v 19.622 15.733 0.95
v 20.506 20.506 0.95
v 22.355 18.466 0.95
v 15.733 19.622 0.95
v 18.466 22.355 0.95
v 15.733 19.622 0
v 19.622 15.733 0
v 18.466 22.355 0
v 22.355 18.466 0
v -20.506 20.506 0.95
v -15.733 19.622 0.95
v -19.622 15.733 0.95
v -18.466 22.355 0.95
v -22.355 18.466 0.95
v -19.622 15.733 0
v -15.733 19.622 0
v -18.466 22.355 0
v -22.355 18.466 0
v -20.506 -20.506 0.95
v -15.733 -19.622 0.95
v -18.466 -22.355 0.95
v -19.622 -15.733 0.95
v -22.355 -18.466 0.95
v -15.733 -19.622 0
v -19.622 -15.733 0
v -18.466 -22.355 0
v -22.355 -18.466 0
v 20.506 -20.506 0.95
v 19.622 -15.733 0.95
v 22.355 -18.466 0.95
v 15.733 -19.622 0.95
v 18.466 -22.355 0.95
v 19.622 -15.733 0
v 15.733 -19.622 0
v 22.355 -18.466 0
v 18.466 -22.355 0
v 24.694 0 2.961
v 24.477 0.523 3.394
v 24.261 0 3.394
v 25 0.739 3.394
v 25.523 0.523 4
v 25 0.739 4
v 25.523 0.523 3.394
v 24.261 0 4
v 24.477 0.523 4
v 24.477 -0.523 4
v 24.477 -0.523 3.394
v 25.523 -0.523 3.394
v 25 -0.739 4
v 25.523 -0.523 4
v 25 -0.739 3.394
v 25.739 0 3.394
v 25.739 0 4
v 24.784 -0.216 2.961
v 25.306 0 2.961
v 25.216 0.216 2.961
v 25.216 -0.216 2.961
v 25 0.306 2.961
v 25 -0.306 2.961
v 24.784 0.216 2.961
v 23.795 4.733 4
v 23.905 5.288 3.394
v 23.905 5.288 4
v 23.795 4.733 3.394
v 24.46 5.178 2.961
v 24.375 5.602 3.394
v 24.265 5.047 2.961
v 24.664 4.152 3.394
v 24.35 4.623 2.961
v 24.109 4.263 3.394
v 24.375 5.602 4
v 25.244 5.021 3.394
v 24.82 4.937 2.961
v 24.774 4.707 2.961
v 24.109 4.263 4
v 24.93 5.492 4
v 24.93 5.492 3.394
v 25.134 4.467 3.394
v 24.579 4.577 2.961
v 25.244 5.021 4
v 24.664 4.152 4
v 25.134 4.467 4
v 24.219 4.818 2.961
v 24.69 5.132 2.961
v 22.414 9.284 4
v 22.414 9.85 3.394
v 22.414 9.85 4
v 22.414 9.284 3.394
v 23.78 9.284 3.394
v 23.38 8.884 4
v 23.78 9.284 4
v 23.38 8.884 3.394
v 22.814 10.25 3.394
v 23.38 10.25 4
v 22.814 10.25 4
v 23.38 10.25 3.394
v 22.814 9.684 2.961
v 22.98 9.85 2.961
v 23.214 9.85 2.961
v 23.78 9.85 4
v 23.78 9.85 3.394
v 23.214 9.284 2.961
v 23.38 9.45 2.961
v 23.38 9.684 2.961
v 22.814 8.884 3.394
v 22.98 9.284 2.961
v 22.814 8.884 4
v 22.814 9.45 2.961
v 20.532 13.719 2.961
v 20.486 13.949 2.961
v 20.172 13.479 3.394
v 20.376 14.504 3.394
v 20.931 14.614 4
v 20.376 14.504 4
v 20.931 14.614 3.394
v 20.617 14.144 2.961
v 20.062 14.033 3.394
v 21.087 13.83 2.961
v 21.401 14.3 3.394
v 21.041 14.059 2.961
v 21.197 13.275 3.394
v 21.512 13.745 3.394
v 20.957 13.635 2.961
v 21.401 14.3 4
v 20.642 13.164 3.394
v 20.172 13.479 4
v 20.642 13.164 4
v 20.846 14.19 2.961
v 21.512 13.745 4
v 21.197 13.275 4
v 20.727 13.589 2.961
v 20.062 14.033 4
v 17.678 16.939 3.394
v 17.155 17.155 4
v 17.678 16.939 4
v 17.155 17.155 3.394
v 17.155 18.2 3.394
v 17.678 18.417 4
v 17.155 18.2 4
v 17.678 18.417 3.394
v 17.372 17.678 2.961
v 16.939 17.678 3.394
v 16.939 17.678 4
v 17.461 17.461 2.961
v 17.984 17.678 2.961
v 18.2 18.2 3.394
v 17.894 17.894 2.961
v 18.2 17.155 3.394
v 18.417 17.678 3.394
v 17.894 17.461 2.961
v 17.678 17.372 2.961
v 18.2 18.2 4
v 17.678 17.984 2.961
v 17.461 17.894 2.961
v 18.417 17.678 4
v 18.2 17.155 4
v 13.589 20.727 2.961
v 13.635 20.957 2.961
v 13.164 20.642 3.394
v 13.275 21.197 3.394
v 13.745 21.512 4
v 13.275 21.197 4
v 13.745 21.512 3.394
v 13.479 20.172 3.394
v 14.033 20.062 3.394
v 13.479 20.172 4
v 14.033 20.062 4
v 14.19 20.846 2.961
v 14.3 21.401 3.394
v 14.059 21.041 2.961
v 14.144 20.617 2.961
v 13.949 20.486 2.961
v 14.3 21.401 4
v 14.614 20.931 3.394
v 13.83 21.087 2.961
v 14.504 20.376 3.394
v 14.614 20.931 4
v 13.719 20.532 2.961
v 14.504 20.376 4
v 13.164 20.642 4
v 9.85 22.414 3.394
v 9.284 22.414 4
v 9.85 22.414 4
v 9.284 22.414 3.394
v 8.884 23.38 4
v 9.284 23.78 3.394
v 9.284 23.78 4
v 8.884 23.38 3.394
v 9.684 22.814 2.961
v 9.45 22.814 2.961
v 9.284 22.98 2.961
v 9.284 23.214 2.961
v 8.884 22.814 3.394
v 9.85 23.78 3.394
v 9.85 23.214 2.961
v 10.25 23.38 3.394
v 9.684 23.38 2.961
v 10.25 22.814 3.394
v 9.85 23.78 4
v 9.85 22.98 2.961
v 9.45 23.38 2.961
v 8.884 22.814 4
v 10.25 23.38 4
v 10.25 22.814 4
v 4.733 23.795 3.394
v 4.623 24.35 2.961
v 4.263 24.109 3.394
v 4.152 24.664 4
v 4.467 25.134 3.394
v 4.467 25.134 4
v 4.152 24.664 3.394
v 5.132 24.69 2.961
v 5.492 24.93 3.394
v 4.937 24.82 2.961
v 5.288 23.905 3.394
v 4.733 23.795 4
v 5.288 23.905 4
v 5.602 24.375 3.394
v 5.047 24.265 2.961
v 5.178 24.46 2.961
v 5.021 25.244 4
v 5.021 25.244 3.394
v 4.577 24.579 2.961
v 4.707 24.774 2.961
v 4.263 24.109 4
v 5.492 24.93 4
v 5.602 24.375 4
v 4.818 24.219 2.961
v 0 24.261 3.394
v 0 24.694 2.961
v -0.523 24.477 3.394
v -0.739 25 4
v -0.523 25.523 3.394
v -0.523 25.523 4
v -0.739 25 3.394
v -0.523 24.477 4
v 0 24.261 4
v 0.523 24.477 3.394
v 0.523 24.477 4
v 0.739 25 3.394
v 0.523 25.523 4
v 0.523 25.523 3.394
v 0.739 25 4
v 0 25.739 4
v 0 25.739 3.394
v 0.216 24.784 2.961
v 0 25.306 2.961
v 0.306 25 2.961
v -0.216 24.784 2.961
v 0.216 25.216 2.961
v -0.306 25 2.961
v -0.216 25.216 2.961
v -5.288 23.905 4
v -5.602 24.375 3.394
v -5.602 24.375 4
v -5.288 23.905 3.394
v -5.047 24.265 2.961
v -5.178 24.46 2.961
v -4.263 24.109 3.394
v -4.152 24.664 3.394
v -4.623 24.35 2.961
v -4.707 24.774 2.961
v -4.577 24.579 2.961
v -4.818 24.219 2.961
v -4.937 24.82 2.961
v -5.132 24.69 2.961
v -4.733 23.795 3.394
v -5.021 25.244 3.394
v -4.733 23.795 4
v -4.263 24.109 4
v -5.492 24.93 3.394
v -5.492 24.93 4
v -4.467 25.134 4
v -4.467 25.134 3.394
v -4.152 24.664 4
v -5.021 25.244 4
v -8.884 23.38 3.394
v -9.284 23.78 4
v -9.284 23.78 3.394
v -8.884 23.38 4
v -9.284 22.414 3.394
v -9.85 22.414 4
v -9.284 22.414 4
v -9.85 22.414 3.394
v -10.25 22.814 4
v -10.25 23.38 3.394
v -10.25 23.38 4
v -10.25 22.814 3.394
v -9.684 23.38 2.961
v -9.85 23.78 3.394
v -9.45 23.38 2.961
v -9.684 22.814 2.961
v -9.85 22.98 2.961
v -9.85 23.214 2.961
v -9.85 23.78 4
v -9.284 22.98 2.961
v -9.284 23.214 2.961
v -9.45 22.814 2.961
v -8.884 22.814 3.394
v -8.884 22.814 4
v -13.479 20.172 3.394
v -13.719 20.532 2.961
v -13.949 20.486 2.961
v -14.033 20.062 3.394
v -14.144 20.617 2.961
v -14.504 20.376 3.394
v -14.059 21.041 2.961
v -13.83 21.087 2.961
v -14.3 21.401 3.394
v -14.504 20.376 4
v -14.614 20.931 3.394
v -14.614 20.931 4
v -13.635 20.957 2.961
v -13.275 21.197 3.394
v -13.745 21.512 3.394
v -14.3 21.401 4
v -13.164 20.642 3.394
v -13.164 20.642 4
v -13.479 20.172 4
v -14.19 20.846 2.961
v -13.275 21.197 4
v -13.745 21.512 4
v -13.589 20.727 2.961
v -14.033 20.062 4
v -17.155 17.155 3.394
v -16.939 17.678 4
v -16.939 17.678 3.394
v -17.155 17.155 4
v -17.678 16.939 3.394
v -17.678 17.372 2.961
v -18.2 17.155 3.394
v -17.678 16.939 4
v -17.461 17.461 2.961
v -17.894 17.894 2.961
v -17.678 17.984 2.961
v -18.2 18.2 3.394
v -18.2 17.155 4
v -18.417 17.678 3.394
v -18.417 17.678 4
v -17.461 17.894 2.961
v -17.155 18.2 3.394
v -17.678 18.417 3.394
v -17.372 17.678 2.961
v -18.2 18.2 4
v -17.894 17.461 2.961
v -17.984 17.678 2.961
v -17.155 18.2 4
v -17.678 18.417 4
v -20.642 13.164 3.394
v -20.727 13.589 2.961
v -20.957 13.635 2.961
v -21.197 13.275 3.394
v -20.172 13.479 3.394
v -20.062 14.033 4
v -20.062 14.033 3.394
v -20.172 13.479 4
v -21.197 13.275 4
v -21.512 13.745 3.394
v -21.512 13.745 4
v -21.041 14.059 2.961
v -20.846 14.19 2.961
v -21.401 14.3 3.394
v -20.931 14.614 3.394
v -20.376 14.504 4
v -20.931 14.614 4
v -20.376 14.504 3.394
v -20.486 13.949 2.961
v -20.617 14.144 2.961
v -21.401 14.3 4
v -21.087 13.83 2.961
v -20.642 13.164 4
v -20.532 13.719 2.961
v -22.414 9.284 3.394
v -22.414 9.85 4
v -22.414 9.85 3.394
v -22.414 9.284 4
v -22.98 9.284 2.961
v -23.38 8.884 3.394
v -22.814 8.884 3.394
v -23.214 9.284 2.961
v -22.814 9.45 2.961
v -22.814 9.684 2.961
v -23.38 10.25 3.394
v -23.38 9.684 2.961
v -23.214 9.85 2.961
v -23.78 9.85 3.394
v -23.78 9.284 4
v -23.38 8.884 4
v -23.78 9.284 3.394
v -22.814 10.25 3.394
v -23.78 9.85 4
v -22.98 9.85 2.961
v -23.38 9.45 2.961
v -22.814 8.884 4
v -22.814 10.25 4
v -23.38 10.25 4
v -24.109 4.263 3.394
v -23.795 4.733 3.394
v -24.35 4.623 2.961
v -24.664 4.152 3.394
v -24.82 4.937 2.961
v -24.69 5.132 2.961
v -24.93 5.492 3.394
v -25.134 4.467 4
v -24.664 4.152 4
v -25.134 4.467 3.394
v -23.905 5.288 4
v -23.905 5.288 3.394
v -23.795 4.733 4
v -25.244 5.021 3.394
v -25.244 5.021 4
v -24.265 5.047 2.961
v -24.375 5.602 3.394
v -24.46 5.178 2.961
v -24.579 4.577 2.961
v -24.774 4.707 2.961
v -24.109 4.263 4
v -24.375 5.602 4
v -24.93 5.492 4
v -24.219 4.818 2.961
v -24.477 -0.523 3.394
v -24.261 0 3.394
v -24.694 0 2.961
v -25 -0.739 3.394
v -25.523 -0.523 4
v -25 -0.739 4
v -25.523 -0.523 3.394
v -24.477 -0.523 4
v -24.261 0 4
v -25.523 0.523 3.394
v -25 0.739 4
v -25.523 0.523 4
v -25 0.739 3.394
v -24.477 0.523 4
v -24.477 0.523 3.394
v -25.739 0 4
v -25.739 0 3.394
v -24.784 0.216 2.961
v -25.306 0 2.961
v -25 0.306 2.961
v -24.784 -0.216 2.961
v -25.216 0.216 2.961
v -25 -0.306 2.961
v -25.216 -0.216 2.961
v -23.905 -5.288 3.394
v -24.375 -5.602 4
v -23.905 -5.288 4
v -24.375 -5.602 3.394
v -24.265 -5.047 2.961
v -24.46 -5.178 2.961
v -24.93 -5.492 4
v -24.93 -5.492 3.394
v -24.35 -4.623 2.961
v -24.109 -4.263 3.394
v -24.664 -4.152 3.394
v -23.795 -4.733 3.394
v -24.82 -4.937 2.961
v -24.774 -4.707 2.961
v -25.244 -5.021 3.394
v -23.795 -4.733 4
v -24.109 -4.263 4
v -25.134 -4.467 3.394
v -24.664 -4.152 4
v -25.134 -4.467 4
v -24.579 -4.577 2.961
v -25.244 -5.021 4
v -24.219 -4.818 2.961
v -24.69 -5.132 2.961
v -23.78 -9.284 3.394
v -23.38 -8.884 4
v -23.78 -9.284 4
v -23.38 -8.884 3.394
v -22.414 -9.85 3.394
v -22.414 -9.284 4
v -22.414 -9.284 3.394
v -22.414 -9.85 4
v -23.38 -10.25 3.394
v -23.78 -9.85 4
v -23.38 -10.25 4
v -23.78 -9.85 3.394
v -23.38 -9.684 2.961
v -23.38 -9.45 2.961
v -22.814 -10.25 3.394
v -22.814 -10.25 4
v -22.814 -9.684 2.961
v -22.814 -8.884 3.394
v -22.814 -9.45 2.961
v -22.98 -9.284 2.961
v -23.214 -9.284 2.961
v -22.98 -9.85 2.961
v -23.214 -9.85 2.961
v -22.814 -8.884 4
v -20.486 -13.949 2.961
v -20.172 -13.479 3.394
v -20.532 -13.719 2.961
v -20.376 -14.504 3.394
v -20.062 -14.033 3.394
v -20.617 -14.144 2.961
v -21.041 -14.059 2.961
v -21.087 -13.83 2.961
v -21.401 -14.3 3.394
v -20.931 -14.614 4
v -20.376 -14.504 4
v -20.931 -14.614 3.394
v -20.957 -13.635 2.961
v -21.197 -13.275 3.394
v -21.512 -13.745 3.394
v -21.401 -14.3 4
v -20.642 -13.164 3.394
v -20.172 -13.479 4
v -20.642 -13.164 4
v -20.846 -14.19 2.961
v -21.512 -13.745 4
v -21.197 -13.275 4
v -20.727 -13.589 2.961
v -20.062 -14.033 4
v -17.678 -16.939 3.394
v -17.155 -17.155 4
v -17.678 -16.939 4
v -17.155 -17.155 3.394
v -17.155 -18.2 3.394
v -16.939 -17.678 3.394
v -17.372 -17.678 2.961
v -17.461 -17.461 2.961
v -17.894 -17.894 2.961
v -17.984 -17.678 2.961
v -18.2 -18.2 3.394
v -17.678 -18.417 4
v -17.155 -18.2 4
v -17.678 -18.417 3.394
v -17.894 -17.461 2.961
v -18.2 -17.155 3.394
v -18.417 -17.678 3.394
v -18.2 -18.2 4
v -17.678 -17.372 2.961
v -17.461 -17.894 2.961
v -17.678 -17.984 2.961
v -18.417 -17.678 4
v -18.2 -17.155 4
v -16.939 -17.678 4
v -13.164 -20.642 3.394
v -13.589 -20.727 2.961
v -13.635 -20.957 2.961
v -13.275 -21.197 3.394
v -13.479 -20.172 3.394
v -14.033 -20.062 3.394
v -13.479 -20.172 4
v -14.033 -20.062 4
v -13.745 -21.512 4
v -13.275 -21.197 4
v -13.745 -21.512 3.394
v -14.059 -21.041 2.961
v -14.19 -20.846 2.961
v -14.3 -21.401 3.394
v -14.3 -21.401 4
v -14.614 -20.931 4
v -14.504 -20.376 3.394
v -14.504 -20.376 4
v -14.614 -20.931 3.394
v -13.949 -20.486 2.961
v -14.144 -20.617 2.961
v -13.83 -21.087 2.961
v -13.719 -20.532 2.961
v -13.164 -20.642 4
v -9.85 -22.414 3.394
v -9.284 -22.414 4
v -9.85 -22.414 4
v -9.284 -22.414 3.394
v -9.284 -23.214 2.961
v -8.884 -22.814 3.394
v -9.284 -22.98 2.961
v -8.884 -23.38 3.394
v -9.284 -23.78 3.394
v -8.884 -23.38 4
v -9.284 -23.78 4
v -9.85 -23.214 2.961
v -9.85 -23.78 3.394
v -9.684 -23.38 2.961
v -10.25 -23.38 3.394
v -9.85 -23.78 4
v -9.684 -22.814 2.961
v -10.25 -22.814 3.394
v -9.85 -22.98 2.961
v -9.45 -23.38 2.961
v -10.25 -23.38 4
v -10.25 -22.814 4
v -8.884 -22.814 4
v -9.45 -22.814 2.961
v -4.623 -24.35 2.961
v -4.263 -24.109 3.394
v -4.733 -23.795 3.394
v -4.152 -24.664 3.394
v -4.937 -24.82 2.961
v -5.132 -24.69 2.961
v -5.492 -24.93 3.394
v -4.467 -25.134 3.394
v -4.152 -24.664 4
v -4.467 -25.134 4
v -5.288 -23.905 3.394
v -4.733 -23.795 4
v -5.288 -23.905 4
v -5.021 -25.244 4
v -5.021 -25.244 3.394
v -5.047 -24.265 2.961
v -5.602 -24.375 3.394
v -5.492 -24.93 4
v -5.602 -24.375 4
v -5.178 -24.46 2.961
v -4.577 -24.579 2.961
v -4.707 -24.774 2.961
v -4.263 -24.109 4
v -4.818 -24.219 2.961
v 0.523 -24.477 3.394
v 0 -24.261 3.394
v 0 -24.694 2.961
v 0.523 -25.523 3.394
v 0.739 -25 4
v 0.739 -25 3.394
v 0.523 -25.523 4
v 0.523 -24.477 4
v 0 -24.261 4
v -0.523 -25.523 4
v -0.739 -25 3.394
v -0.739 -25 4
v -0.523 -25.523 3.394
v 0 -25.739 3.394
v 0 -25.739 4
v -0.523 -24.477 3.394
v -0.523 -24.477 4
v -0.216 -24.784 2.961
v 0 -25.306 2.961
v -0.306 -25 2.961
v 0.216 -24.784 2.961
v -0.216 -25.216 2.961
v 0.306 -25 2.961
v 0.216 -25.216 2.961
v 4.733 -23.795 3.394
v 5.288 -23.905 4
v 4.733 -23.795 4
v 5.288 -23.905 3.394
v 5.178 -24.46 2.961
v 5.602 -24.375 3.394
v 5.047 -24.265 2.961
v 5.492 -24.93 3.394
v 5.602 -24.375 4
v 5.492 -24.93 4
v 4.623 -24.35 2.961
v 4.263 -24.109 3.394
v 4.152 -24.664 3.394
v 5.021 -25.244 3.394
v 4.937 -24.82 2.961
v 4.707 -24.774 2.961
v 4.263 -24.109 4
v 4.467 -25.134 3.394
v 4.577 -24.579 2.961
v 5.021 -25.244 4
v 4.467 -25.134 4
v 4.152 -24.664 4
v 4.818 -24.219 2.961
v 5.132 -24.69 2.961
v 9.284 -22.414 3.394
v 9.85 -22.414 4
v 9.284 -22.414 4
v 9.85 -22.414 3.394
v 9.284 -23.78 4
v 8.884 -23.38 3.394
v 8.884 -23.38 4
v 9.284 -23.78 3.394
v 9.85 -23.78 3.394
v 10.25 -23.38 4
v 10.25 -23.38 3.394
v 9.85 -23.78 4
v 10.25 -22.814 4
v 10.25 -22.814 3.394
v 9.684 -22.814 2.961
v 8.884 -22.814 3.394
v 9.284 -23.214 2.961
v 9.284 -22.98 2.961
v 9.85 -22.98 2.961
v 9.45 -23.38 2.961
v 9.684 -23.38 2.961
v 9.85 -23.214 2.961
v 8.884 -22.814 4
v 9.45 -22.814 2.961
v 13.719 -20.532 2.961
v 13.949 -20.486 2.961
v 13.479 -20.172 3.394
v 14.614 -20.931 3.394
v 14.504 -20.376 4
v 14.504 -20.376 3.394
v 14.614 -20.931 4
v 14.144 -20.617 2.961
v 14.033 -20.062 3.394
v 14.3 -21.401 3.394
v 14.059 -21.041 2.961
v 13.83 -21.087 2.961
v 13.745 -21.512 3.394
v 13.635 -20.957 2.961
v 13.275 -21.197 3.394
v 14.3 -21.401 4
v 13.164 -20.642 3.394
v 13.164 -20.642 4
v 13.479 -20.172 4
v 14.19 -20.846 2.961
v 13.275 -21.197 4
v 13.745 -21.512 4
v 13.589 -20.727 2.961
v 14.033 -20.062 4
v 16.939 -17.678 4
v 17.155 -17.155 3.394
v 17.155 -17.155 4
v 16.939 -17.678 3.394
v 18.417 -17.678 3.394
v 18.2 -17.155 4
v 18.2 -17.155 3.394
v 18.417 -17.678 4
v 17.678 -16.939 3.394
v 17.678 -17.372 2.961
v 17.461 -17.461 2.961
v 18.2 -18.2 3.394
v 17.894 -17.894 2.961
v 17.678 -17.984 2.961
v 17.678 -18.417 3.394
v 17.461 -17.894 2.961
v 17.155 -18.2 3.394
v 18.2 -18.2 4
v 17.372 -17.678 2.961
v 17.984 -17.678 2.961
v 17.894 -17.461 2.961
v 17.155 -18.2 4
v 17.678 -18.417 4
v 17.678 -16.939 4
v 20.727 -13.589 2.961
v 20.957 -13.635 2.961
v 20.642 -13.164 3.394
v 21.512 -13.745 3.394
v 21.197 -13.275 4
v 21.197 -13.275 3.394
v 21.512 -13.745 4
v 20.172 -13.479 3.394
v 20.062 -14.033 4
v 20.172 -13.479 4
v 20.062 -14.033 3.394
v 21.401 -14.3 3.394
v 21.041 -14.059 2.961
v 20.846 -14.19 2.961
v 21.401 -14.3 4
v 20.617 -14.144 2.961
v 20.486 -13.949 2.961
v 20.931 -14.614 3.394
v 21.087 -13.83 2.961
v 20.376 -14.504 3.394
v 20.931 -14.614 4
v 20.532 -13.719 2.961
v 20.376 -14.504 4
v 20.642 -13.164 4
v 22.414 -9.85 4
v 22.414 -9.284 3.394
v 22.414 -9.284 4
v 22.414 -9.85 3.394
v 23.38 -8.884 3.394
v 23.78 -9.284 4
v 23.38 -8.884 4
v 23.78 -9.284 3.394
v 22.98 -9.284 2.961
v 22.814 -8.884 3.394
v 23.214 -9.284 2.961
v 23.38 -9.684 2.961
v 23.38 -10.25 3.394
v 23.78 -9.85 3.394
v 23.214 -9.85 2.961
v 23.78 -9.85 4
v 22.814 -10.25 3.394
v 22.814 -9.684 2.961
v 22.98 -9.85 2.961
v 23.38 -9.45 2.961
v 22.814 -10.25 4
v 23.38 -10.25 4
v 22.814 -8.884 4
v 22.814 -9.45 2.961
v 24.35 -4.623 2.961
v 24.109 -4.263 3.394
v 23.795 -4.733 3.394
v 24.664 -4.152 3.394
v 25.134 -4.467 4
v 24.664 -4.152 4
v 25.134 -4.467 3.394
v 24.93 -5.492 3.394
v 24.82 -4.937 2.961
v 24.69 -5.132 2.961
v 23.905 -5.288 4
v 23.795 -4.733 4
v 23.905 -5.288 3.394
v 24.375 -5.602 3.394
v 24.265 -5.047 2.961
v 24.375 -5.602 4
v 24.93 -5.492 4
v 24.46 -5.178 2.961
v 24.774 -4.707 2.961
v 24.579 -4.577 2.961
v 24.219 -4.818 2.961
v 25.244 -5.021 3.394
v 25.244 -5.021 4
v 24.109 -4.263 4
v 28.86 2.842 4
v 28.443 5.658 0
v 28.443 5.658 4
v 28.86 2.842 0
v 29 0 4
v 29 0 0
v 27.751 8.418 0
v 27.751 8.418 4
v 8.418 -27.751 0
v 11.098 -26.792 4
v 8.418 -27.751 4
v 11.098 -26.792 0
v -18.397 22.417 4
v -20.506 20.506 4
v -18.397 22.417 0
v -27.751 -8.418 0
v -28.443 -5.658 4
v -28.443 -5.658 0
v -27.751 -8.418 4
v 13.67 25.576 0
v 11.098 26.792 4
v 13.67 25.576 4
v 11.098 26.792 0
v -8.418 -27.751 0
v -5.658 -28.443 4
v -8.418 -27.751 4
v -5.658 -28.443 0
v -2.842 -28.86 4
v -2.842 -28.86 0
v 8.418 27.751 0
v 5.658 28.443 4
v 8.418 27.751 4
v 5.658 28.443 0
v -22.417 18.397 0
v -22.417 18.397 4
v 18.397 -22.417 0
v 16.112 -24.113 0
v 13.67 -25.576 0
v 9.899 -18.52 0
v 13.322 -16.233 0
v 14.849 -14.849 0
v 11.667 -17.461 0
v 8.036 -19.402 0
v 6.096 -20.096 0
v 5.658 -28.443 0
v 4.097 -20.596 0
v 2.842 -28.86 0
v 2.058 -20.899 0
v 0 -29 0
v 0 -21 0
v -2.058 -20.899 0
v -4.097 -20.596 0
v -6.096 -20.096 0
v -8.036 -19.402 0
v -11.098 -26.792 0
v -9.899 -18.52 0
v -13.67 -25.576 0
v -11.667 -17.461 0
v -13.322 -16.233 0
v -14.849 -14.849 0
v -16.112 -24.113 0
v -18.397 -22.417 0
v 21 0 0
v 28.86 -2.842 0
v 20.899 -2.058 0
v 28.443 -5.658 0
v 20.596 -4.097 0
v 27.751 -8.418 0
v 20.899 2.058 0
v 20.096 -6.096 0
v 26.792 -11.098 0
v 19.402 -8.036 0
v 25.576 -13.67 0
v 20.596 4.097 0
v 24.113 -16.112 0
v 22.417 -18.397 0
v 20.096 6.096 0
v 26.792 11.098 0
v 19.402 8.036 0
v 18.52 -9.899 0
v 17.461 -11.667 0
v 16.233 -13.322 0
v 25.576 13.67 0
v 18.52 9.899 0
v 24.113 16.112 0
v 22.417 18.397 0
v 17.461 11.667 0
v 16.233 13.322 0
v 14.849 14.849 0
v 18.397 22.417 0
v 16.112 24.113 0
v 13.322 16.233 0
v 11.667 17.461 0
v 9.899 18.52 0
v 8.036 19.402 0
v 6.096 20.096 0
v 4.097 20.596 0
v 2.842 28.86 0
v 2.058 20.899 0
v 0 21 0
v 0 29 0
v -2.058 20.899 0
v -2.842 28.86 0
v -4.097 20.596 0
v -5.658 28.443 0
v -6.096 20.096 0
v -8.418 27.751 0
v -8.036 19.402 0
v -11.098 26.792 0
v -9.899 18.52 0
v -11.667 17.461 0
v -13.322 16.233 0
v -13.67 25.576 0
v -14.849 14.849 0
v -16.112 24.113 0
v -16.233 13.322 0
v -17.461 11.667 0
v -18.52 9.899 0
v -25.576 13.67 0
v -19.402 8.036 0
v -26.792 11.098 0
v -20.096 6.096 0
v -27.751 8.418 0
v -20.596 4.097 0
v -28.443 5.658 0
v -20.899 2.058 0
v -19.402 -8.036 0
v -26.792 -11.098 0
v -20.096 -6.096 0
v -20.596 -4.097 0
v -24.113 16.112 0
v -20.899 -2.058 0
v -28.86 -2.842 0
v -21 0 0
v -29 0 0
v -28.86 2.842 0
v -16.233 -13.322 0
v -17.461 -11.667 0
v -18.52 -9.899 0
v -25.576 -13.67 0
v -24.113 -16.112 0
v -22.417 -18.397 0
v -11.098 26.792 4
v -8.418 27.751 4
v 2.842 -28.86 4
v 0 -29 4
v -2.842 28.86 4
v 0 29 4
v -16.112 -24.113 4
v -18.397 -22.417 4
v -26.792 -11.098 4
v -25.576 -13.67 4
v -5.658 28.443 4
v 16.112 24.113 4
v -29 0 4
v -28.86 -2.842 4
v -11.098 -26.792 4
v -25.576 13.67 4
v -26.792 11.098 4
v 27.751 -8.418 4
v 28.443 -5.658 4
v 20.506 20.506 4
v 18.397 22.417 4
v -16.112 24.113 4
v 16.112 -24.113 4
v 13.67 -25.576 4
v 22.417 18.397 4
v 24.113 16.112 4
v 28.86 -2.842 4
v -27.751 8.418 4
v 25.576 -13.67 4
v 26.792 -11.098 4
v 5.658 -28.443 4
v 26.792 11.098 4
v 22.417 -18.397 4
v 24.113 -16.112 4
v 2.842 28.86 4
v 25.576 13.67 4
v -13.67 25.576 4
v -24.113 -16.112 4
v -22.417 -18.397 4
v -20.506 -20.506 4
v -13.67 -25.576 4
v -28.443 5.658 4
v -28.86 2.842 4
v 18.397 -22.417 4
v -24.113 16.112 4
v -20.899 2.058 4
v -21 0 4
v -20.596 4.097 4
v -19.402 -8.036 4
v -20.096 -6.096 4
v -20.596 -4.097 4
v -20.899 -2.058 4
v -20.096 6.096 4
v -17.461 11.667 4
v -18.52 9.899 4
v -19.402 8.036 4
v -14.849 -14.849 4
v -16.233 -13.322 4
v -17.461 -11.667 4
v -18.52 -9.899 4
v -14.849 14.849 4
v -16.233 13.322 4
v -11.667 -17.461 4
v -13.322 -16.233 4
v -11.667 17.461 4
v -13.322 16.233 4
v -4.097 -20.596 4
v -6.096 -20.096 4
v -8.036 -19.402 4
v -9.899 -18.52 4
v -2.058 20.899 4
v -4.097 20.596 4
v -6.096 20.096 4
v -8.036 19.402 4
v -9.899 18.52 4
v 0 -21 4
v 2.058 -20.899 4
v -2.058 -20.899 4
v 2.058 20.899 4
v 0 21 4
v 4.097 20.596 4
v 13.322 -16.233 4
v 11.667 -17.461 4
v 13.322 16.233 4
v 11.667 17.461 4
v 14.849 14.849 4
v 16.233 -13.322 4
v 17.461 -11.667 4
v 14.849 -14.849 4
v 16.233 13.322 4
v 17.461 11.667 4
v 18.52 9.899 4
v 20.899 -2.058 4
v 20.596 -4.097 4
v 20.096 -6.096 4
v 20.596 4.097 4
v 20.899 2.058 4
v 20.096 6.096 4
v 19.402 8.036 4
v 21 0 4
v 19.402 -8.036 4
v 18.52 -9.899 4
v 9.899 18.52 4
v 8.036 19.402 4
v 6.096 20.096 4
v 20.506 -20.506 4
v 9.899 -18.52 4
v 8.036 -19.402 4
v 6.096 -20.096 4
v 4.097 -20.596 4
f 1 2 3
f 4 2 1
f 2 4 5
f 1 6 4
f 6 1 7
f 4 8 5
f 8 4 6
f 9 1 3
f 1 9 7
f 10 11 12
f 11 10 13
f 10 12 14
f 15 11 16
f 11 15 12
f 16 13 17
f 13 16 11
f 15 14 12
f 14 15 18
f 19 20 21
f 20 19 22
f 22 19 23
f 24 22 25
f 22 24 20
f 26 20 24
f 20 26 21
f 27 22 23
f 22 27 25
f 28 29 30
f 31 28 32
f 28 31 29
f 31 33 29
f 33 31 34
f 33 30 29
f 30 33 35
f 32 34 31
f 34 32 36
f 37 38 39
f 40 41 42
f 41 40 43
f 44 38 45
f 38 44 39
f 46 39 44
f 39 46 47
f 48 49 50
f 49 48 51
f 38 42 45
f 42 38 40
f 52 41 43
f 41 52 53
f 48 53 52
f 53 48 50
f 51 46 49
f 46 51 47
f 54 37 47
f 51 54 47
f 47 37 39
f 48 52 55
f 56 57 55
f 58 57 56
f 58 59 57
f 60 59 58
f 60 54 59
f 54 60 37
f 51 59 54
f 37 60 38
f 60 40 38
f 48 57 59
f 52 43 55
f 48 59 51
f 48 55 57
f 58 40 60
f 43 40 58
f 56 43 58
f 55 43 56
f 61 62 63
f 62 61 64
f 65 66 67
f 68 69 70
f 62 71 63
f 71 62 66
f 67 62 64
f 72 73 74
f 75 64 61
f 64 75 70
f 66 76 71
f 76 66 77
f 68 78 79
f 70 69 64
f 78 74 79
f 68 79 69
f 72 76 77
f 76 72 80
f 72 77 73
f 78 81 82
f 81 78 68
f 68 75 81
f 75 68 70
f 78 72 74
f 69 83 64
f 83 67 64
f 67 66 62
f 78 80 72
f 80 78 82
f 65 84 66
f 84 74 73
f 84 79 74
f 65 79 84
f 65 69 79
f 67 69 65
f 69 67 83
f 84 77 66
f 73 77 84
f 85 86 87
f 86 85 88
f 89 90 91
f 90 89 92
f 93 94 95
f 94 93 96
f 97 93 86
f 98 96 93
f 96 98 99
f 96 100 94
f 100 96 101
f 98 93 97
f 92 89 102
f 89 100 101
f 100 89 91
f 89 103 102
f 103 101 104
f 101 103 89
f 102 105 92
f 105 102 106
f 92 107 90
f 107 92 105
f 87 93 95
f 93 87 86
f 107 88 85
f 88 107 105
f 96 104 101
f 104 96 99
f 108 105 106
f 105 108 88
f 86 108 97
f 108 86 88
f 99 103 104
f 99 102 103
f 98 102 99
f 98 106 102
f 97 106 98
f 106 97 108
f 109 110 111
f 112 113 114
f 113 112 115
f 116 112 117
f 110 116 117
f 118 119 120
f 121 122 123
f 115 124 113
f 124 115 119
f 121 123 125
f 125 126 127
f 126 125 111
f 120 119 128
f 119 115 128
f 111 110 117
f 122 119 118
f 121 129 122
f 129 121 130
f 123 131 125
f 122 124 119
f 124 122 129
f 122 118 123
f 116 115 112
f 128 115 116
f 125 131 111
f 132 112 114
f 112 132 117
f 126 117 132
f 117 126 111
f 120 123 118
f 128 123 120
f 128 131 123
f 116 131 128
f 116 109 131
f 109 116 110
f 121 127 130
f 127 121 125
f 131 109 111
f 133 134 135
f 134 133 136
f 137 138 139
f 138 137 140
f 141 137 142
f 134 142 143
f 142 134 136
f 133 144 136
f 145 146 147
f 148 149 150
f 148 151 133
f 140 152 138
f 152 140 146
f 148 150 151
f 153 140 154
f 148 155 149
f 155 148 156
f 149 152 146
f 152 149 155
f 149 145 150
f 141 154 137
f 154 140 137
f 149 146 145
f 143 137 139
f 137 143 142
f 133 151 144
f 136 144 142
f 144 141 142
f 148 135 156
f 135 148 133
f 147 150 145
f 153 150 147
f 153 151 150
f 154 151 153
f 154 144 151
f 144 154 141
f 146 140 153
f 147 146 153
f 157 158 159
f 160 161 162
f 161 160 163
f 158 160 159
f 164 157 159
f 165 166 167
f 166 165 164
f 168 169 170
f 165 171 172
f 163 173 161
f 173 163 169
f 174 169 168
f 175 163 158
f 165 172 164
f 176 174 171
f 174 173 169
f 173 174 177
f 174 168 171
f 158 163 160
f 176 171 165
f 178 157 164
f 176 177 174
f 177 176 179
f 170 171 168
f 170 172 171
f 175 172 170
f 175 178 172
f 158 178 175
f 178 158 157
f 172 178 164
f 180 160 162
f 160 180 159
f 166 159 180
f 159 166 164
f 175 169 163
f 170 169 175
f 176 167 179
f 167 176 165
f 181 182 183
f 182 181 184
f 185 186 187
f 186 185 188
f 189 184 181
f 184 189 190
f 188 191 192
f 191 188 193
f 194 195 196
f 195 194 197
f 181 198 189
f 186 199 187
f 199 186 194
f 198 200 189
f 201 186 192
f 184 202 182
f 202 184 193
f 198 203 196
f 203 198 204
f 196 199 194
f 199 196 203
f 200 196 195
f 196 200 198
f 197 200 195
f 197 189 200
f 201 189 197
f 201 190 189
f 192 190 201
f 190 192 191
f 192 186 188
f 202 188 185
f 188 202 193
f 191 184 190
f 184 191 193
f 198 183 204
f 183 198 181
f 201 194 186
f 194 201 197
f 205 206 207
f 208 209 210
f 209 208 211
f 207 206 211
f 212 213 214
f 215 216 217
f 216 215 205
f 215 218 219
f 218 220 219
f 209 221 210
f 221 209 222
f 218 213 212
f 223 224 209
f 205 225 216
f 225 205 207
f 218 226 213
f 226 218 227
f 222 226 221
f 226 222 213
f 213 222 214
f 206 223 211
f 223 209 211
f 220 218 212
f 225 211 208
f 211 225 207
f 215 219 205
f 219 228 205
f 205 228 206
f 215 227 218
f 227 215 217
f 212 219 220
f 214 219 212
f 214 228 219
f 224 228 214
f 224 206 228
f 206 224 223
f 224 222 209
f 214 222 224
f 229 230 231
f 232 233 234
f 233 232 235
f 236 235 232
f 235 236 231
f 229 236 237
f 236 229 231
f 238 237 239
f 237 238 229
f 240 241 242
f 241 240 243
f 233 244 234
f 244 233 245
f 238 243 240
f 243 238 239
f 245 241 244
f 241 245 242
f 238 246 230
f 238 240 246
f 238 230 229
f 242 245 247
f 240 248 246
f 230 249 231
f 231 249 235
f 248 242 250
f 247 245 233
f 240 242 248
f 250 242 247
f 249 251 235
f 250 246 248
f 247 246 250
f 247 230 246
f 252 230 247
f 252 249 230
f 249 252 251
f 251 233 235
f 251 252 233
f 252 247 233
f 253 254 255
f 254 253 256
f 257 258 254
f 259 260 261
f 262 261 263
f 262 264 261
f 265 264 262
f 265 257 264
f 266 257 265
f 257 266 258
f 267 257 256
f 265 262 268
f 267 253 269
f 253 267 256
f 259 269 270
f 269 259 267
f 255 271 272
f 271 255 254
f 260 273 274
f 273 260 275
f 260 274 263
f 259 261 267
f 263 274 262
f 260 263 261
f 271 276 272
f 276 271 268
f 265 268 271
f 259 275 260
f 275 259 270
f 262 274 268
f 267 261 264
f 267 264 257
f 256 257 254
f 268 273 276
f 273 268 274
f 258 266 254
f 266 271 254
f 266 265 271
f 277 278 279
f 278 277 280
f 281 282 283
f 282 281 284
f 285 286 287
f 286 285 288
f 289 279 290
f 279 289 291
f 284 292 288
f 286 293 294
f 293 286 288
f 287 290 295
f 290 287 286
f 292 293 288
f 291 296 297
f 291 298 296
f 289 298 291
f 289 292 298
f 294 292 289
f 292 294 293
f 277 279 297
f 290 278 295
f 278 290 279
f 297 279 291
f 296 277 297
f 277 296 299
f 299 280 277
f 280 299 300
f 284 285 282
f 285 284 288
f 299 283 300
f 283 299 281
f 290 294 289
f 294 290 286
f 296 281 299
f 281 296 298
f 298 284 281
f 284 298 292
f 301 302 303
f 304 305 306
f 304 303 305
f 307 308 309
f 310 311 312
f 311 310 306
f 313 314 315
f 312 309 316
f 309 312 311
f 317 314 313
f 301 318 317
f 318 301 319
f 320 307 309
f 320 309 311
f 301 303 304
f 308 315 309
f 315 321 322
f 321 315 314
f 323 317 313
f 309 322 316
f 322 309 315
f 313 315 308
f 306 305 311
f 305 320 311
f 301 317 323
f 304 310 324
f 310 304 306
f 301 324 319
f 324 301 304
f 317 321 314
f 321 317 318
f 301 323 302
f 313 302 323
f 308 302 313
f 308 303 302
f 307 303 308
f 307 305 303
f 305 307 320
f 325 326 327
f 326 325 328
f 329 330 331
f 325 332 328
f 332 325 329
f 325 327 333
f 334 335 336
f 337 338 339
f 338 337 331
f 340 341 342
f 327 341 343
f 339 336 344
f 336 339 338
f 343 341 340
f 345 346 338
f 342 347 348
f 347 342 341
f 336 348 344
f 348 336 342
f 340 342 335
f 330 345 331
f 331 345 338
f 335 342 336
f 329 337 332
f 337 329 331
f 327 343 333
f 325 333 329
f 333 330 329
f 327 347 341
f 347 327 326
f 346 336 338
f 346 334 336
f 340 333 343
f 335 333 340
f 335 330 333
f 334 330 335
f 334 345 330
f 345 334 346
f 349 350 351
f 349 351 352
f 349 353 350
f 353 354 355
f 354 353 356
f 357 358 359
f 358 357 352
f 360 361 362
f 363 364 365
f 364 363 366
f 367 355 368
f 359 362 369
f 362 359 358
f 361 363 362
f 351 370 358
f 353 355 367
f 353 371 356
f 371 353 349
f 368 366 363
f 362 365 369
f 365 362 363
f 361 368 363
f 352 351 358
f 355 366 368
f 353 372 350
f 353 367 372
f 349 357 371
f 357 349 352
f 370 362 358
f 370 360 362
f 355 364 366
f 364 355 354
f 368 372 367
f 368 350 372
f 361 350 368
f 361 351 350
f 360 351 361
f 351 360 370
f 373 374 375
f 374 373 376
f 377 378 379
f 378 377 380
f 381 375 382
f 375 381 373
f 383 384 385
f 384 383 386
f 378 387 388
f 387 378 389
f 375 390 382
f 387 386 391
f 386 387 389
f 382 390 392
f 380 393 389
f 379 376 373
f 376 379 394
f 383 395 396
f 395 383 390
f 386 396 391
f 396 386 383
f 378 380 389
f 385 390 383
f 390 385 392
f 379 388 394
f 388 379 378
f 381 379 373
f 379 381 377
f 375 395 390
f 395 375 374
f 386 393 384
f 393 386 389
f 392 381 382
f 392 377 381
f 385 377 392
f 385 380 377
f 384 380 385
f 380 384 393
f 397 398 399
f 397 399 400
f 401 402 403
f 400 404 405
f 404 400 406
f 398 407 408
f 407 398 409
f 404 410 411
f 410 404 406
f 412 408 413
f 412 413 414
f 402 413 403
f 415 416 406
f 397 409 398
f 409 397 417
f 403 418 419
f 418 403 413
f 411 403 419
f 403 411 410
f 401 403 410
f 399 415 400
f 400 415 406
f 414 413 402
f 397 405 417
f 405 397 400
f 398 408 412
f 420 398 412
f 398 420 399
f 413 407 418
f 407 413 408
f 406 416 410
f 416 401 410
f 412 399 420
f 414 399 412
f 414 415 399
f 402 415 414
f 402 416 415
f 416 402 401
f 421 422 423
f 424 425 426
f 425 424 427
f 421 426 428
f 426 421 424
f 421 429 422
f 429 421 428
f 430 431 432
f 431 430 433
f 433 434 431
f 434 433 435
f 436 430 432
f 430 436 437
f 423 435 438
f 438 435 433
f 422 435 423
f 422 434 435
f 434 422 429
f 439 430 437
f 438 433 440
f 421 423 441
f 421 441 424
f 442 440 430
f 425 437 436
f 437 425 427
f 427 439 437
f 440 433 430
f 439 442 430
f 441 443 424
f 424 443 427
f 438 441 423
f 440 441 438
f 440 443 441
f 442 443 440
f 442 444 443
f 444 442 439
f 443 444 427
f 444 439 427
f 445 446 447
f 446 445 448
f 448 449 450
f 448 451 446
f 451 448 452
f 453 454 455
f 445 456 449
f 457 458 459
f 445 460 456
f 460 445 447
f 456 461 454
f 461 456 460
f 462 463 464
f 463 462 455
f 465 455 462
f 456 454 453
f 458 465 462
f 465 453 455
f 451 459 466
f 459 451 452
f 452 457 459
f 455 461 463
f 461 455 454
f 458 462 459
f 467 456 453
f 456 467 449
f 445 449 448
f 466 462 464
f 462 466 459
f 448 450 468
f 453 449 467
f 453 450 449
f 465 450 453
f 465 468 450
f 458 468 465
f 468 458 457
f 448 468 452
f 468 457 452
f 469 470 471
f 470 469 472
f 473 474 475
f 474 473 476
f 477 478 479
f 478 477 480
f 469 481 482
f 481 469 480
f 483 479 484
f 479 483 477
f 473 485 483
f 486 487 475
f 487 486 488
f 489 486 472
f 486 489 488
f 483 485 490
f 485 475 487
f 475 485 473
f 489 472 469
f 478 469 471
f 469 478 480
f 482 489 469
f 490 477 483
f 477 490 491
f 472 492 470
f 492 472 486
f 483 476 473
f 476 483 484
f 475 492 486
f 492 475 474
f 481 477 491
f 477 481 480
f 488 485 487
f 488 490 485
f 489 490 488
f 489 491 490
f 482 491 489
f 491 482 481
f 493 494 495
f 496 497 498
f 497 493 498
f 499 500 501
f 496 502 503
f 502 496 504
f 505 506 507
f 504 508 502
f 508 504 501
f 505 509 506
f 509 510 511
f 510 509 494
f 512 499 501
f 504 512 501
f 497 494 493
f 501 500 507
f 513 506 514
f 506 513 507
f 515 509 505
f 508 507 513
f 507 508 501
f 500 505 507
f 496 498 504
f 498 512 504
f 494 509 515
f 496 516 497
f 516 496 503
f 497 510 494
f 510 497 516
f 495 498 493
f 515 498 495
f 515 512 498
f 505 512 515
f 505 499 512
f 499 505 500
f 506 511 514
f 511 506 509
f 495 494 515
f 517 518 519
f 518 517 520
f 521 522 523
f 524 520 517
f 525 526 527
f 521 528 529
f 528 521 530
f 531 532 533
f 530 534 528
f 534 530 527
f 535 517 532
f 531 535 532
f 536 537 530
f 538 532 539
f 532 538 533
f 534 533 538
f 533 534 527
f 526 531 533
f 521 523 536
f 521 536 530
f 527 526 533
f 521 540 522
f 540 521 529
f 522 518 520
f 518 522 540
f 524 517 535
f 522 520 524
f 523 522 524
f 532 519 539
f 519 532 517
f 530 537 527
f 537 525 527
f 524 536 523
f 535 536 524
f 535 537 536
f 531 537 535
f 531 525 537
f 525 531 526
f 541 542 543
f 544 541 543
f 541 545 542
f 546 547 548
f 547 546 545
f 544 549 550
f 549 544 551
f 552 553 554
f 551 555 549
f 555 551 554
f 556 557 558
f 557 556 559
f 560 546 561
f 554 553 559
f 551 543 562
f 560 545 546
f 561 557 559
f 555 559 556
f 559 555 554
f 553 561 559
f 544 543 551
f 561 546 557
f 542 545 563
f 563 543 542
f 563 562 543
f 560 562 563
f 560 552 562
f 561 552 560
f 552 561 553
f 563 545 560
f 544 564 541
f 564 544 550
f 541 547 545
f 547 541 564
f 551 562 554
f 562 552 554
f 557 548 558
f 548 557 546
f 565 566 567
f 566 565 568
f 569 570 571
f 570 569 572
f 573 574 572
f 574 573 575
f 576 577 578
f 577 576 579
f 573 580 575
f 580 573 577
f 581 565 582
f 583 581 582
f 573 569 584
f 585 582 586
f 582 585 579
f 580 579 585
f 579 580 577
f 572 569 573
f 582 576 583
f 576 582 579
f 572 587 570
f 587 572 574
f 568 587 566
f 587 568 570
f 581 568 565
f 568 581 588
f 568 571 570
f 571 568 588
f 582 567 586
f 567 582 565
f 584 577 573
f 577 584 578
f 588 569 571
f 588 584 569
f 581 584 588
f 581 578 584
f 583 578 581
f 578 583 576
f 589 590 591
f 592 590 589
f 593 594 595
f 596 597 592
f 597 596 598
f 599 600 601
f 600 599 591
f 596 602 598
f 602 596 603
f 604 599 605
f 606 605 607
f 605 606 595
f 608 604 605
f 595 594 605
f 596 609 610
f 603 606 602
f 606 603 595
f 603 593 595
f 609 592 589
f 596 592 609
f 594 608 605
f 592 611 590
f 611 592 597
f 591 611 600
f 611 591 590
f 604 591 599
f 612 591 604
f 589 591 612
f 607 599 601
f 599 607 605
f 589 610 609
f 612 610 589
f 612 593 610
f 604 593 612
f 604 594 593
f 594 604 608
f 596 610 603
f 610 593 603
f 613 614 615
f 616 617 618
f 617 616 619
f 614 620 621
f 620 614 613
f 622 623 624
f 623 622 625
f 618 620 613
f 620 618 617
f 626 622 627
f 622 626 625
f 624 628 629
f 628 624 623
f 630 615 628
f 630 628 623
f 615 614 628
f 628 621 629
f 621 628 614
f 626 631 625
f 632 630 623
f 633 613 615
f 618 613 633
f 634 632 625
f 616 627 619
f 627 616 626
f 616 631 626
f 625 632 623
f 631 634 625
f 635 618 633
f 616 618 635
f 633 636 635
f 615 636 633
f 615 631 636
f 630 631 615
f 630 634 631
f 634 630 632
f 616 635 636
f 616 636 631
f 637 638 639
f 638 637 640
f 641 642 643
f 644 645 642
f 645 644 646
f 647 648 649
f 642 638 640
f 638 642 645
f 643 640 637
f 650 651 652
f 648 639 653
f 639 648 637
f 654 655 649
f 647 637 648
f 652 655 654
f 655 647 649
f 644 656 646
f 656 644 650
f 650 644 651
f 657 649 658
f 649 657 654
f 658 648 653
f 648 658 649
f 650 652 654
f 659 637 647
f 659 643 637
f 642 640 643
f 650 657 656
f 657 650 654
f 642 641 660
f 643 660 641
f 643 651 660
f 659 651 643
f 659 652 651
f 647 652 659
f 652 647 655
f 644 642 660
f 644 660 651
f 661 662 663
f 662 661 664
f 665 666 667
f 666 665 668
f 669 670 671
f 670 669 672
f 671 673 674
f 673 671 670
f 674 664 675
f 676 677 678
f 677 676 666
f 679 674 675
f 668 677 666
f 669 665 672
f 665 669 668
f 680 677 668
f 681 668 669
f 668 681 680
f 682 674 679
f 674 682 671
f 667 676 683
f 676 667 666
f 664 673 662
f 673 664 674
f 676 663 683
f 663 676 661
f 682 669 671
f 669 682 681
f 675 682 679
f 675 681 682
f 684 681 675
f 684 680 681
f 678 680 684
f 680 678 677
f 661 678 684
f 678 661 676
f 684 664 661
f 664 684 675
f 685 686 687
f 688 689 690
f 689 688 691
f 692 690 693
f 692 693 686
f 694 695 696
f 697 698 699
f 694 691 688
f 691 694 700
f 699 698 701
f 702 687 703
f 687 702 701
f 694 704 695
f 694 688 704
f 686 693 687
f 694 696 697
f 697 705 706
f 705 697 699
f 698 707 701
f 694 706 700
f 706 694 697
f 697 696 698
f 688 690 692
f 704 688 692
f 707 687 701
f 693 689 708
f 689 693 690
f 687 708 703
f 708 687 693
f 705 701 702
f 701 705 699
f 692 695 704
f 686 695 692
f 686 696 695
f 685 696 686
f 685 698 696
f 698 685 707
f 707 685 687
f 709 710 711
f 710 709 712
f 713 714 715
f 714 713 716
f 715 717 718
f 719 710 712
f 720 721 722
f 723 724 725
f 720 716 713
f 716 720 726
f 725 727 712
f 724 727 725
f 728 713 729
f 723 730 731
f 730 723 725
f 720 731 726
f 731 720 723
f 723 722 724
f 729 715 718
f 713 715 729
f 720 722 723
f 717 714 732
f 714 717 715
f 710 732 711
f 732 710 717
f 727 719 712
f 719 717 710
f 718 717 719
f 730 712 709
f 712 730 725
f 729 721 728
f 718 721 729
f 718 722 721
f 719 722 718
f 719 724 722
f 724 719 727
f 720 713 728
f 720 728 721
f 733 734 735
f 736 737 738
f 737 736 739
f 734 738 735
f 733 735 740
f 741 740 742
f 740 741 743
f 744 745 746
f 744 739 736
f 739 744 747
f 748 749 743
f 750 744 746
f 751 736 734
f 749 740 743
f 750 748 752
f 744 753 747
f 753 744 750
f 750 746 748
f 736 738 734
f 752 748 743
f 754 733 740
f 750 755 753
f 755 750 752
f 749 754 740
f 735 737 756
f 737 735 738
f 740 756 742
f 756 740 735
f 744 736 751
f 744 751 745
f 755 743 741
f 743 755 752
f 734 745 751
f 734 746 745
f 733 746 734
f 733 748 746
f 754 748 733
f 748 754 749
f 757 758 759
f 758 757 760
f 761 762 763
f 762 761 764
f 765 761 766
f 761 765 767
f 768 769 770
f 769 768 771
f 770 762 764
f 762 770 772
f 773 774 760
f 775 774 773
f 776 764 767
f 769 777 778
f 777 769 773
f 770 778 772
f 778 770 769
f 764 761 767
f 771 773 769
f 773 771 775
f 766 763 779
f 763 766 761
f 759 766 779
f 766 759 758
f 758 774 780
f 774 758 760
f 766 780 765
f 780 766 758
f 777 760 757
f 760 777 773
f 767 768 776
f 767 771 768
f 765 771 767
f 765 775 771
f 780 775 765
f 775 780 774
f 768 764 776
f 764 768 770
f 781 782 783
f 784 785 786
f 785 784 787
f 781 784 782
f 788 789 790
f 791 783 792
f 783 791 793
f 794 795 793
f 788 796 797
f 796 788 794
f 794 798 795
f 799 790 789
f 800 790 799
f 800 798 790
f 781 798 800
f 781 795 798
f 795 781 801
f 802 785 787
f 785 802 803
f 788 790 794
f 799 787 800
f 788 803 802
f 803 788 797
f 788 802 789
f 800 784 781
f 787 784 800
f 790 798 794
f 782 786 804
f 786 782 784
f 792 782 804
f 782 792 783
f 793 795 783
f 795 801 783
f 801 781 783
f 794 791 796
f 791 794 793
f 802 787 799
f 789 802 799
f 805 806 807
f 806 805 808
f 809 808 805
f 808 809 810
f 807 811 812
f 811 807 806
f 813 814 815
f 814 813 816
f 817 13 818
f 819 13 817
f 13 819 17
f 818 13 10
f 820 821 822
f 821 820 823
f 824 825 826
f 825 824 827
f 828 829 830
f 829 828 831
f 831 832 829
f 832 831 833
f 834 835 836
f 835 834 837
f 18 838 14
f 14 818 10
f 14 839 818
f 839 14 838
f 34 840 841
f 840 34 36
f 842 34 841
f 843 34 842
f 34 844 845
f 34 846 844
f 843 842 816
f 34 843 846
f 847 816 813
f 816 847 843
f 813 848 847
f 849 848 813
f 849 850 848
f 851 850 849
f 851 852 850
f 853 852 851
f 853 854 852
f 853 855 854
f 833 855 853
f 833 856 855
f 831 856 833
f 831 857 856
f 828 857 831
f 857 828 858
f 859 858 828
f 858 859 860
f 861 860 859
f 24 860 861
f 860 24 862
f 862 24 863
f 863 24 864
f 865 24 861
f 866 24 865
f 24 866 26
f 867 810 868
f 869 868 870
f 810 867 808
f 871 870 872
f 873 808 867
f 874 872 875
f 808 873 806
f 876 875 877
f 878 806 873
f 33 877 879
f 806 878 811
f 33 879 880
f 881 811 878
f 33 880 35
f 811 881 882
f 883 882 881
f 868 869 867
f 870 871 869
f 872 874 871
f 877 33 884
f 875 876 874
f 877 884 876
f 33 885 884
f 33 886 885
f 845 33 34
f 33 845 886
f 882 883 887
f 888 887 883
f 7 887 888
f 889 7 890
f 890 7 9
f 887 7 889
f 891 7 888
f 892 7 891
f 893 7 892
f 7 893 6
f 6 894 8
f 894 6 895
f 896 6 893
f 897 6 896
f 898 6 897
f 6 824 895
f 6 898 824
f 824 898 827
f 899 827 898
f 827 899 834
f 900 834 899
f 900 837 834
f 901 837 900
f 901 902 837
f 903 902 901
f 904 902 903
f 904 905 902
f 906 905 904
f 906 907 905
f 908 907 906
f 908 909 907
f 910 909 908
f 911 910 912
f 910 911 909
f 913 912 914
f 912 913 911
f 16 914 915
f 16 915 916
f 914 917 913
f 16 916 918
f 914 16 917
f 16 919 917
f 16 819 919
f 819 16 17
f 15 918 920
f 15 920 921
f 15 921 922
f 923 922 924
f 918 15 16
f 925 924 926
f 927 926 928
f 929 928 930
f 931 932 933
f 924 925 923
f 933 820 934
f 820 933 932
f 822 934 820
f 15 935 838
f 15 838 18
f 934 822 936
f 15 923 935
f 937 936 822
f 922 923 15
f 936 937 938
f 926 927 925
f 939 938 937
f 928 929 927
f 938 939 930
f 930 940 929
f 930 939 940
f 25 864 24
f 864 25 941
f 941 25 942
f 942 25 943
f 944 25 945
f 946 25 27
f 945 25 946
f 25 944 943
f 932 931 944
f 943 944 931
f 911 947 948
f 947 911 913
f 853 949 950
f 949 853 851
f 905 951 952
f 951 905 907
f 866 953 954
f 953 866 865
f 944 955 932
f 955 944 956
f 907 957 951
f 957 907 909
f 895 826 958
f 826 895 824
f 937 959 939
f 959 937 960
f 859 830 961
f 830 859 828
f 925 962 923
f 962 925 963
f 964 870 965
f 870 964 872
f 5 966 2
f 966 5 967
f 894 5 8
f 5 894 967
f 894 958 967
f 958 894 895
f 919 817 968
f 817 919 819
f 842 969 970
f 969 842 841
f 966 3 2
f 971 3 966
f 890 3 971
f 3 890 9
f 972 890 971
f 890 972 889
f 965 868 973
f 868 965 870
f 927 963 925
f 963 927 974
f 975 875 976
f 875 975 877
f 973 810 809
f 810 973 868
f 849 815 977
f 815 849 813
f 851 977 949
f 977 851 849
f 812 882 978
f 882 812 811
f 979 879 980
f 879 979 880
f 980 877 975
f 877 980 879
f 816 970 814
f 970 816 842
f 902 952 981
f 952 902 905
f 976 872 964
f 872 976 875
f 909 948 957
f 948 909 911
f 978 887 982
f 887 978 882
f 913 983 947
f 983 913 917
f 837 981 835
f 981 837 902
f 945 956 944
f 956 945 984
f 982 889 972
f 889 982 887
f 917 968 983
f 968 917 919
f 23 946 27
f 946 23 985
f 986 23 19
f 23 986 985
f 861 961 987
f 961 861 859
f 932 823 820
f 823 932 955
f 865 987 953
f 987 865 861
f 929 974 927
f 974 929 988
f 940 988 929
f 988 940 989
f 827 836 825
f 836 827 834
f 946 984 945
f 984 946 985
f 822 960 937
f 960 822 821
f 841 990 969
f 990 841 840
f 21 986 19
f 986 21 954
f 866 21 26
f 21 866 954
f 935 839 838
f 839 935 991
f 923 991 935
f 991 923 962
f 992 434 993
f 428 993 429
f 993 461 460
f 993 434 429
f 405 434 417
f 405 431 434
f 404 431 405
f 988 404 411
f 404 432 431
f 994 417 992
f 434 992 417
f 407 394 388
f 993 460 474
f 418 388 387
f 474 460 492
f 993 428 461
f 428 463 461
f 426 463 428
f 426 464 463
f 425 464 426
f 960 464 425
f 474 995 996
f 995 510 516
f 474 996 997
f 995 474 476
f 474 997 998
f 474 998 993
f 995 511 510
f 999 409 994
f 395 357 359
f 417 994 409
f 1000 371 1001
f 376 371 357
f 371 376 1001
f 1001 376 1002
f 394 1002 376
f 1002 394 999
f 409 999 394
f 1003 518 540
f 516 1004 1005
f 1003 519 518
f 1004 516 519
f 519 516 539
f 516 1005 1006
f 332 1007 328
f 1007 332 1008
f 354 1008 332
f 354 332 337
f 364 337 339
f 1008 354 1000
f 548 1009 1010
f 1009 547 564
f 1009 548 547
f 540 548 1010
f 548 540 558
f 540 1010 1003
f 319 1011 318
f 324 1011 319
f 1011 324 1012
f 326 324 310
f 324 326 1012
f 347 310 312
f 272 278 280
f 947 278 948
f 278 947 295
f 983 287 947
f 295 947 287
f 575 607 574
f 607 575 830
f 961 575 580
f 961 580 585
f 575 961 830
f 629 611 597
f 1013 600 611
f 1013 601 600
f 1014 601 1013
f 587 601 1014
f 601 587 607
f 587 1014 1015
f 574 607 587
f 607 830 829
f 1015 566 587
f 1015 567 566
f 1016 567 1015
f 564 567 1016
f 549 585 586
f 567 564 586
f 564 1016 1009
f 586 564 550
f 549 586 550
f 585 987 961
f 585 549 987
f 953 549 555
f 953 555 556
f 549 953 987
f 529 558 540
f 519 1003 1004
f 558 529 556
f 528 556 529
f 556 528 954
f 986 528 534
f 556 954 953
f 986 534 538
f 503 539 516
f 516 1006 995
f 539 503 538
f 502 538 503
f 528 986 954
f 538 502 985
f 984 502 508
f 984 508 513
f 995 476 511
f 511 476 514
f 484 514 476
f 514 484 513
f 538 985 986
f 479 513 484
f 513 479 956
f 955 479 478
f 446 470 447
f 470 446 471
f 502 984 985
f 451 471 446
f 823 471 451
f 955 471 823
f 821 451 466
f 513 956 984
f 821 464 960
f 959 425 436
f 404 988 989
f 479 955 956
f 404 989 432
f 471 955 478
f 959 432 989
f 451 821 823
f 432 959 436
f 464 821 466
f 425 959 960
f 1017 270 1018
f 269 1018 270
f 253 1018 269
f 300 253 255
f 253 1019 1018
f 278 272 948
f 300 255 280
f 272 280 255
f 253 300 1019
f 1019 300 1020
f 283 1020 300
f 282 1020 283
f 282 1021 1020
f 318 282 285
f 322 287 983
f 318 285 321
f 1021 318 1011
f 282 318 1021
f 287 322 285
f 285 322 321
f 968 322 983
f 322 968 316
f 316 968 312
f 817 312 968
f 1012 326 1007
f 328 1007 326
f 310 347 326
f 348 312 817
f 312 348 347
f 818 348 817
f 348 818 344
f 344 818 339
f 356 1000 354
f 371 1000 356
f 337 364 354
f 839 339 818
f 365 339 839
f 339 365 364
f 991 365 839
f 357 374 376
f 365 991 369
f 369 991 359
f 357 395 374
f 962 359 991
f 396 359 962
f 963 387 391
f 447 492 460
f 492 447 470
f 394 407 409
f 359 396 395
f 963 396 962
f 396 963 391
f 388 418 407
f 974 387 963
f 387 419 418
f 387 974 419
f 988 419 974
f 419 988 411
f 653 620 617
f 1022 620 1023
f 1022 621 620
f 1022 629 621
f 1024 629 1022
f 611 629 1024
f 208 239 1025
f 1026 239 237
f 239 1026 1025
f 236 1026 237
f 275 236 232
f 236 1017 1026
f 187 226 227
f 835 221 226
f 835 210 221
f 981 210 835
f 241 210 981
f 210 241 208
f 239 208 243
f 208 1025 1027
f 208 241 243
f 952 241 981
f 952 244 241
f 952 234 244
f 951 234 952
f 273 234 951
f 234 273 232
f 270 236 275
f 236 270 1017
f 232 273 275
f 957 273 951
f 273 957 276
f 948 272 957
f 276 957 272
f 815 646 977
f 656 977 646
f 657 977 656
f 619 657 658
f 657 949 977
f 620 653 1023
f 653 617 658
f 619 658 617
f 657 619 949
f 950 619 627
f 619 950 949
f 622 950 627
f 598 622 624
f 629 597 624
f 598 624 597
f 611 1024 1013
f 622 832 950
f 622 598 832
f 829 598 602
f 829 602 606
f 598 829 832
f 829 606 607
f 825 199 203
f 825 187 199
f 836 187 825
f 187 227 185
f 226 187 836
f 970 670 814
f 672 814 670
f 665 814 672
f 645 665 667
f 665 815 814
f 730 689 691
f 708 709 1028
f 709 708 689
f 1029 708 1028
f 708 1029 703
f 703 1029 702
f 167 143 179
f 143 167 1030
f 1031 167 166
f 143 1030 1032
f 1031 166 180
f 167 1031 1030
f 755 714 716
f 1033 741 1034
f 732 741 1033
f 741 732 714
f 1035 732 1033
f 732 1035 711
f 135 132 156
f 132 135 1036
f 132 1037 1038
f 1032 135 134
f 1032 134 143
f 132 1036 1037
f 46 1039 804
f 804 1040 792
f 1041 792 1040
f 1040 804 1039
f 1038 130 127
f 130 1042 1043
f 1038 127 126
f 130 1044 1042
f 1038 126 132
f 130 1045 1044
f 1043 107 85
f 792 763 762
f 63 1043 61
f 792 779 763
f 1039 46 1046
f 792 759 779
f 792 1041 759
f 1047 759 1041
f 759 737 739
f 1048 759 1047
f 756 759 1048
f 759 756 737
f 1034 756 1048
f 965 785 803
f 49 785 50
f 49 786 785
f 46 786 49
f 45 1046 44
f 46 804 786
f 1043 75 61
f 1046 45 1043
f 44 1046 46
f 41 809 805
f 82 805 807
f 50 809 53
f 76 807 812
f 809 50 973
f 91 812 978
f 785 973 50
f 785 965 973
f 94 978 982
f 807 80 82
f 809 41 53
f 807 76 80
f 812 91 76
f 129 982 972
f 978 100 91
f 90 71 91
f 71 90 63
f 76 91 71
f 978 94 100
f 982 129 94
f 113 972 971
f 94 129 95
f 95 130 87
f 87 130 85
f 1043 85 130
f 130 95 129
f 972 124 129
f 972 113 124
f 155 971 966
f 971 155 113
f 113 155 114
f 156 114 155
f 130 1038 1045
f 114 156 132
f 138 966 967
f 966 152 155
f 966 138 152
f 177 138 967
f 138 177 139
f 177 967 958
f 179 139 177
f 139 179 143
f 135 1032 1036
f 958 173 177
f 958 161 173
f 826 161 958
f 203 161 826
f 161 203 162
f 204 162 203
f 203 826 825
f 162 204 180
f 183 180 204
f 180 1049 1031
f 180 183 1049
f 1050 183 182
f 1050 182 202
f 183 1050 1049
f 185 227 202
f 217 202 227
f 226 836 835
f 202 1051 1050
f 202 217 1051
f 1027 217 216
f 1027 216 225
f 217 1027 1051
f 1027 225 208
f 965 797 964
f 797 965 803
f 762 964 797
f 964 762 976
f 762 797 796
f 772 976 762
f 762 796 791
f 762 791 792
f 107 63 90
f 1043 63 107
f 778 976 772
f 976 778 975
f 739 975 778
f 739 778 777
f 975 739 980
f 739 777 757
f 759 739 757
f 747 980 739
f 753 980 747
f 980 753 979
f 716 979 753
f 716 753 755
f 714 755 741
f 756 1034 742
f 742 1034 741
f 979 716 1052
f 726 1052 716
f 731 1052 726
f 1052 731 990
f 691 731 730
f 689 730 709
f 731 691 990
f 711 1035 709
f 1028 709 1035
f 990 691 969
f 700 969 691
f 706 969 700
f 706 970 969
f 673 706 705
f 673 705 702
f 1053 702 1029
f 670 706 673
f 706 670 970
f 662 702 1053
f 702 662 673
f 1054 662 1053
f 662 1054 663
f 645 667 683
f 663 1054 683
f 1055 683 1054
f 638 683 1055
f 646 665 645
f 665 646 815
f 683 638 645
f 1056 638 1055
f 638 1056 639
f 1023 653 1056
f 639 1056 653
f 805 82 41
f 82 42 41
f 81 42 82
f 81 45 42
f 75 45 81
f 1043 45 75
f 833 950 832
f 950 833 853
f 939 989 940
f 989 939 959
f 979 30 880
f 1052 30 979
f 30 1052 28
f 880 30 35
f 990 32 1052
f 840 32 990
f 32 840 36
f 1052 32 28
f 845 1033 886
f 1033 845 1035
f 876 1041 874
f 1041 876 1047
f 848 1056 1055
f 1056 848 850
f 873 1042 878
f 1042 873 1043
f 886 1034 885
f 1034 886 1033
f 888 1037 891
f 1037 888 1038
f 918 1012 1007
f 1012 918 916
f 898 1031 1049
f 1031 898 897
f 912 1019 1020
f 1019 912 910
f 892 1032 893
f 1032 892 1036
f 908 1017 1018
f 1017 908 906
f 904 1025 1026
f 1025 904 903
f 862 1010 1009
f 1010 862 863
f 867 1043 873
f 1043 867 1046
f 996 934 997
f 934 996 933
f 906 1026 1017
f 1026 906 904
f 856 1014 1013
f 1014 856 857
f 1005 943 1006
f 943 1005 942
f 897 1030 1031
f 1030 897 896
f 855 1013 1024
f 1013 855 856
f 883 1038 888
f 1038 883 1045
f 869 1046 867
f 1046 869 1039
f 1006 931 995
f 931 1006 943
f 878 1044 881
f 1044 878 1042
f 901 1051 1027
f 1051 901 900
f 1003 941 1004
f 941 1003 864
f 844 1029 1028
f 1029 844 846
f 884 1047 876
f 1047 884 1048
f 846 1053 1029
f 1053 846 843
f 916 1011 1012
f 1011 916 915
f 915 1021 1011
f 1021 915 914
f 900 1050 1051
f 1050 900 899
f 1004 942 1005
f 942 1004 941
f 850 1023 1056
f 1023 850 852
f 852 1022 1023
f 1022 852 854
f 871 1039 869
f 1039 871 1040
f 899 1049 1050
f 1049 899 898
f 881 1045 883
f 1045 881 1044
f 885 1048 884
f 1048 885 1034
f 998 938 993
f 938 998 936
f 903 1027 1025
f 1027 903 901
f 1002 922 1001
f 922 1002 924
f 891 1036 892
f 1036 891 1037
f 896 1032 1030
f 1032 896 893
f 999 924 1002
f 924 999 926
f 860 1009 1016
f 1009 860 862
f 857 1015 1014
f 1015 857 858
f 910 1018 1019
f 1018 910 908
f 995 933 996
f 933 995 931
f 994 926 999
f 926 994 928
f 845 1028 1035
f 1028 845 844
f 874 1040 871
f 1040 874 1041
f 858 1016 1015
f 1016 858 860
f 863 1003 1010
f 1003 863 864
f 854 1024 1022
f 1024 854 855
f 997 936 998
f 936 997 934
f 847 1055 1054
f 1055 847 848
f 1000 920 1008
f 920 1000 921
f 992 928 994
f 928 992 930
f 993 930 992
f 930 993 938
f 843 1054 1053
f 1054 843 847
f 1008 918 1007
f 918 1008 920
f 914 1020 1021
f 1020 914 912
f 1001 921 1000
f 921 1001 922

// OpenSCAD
// Kagami Orb V3.1 — Diffuser Ring (VERIFIED DIMENSIONS)
// ========================================================
// Softens HD108 LED output at sphere equator
// Material: White resin (diffuse) or Frosted Clear
// Print: Form 4, 50μm layer height
//
// DESIGN NOTES:
// - Sits on top of LED mount ring
// - Diffuses light from 16× HD108 LEDs
// - Snap-fit tabs for easy assembly

/* [Diffuser Parameters] */
// Slightly larger than LED ring for light coverage
diffuser_outer_diameter = 58;     // Covers 55mm LED ring
diffuser_inner_diameter = 42;     // Inner opening
diffuser_height = 4;              // Low profile
diffuser_wall = 2;                // Wall thickness

/* [Interface with LED Ring] */
led_ring_outer = 55;              // Must match led_mount_ring.scad
snap_tab_count = 4;
snap_recess_width = 5.5;          // Slightly wider than LED ring tabs
snap_recess_depth = 2;

/* [Light Diffusion] */
diffuser_thickness = 1.5;         // Material thickness for diffusion
texture_depth = 0.3;              // Optional texture for better diffusion

// ============================================================
// MAIN MODULE
// ============================================================
module diffuser_ring() {
    difference() {
        union() {
            // Main ring body
            cylinder(h=diffuser_height, d=diffuser_outer_diameter, $fn=64);
        }
        
        // Inner opening
        translate([0, 0, -0.1])
            cylinder(h=diffuser_height + 0.2, d=diffuser_inner_diameter, $fn=64);
        
        // Snap tab recesses (to mate with LED ring)
        for (i = [0:snap_tab_count-1]) {
            rotate([0, 0, i * (360/snap_tab_count) + 45])
            translate([led_ring_outer/2 + 0.5, 0, -0.1])
                cube([6, snap_recess_width, snap_recess_depth + 0.1], center=true);
        }
        
        // Light diffusion texture (optional - small dimples)
        if (texture_depth > 0) {
            for (i = [0:31]) {
                rotate([0, 0, i * 11.25])
                translate([(diffuser_outer_diameter + diffuser_inner_diameter)/4, 0, diffuser_height - texture_depth])
                    sphere(r=0.8, $fn=8);
            }
        }
    }
}

// ============================================================
// RENDER
// ============================================================
diffuser_ring();

// ============================================================
// VERIFICATION
// ============================================================
echo("=== DIFFUSER RING VERIFICATION ===");
echo(str("Diffuser OD: ", diffuser_outer_diameter, "mm"));
echo(str("Diffuser ID: ", diffuser_inner_diameter, "mm"));
echo(str("Height: ", diffuser_height, "mm"));
echo(str("Covers LED ring: ", led_ring_outer, "mm"));
echo(str("Fits in 70mm internal? ", diffuser_outer_diameter < 70 ? "YES ✓" : "NO ✗"));
